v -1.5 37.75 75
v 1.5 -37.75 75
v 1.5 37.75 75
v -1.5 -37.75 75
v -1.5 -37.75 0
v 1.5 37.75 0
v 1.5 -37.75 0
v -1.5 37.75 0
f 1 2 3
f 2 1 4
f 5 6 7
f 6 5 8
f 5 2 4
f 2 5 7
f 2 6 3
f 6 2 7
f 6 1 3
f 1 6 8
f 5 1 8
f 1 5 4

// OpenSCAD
// file: Inlet.scad
$fn = 100;
tiny = 0.01;


/******************************************************
 * dx,dy: Maße, wie bei 'Boden' angegeben.
 *****************************************************/
module inlet_top_down(dx,dy) {
  h1 = 3;  
  dx1 = 5.9;
  dx2 = 4.0; // vier mal Fase an Ecken

  difference() {
     translate([0,0,h1/2]) cube([dx-2*dx1,dy-2*dx1,h1], true); 
     translate([+dx/2-dx1,+dy/2-dx1,h1/2-tiny]) rotate([0,0,45]) cube([dx2,dx2,h1+3*tiny], true);
     translate([+dx/2-dx1,-dy/2+dx1,h1/2-tiny]) rotate([0,0,45]) cube([dx2,dx2,h1+3*tiny], true);
     translate([-dx/2+dx1,+dy/2-dx1,h1/2-tiny]) rotate([0,0,45]) cube([dx2,dx2,h1+3*tiny], true);
     translate([-dx/2+dx1,-dy/2+dx1,h1/2-tiny]) rotate([0,0,45]) cube([dx2,dx2,h1+3*tiny], true);
     }
}


/******************************************************
 * dy: Maß, wie bei 'Boden' angegeben.
 * h:  Maß, wie bei 'Kante' angegeben.
 *****************************************************/
module inlet_front_back(h,dy) {
  h1 = 3;
  dy1 = 12+12.5;
  translate([0,0,h/2]) cube([h1,dy-dy1,h], true);
}


/******************************************************
 * dx: Maß, wie bei 'Boden' angegeben.
 * h:  Maß, wie bei 'Kante' angegeben.
 *****************************************************/
module inlet_left_right(h,dx) {
  h1 = 3;
  dx1 = 12+12.5;
  translate([0,0,h/2]) cube([dx-dx1,h1,h], true);
}
// main file
$fn = 100;

use <Inlet.scad>


inlet_front_back(75,100);
